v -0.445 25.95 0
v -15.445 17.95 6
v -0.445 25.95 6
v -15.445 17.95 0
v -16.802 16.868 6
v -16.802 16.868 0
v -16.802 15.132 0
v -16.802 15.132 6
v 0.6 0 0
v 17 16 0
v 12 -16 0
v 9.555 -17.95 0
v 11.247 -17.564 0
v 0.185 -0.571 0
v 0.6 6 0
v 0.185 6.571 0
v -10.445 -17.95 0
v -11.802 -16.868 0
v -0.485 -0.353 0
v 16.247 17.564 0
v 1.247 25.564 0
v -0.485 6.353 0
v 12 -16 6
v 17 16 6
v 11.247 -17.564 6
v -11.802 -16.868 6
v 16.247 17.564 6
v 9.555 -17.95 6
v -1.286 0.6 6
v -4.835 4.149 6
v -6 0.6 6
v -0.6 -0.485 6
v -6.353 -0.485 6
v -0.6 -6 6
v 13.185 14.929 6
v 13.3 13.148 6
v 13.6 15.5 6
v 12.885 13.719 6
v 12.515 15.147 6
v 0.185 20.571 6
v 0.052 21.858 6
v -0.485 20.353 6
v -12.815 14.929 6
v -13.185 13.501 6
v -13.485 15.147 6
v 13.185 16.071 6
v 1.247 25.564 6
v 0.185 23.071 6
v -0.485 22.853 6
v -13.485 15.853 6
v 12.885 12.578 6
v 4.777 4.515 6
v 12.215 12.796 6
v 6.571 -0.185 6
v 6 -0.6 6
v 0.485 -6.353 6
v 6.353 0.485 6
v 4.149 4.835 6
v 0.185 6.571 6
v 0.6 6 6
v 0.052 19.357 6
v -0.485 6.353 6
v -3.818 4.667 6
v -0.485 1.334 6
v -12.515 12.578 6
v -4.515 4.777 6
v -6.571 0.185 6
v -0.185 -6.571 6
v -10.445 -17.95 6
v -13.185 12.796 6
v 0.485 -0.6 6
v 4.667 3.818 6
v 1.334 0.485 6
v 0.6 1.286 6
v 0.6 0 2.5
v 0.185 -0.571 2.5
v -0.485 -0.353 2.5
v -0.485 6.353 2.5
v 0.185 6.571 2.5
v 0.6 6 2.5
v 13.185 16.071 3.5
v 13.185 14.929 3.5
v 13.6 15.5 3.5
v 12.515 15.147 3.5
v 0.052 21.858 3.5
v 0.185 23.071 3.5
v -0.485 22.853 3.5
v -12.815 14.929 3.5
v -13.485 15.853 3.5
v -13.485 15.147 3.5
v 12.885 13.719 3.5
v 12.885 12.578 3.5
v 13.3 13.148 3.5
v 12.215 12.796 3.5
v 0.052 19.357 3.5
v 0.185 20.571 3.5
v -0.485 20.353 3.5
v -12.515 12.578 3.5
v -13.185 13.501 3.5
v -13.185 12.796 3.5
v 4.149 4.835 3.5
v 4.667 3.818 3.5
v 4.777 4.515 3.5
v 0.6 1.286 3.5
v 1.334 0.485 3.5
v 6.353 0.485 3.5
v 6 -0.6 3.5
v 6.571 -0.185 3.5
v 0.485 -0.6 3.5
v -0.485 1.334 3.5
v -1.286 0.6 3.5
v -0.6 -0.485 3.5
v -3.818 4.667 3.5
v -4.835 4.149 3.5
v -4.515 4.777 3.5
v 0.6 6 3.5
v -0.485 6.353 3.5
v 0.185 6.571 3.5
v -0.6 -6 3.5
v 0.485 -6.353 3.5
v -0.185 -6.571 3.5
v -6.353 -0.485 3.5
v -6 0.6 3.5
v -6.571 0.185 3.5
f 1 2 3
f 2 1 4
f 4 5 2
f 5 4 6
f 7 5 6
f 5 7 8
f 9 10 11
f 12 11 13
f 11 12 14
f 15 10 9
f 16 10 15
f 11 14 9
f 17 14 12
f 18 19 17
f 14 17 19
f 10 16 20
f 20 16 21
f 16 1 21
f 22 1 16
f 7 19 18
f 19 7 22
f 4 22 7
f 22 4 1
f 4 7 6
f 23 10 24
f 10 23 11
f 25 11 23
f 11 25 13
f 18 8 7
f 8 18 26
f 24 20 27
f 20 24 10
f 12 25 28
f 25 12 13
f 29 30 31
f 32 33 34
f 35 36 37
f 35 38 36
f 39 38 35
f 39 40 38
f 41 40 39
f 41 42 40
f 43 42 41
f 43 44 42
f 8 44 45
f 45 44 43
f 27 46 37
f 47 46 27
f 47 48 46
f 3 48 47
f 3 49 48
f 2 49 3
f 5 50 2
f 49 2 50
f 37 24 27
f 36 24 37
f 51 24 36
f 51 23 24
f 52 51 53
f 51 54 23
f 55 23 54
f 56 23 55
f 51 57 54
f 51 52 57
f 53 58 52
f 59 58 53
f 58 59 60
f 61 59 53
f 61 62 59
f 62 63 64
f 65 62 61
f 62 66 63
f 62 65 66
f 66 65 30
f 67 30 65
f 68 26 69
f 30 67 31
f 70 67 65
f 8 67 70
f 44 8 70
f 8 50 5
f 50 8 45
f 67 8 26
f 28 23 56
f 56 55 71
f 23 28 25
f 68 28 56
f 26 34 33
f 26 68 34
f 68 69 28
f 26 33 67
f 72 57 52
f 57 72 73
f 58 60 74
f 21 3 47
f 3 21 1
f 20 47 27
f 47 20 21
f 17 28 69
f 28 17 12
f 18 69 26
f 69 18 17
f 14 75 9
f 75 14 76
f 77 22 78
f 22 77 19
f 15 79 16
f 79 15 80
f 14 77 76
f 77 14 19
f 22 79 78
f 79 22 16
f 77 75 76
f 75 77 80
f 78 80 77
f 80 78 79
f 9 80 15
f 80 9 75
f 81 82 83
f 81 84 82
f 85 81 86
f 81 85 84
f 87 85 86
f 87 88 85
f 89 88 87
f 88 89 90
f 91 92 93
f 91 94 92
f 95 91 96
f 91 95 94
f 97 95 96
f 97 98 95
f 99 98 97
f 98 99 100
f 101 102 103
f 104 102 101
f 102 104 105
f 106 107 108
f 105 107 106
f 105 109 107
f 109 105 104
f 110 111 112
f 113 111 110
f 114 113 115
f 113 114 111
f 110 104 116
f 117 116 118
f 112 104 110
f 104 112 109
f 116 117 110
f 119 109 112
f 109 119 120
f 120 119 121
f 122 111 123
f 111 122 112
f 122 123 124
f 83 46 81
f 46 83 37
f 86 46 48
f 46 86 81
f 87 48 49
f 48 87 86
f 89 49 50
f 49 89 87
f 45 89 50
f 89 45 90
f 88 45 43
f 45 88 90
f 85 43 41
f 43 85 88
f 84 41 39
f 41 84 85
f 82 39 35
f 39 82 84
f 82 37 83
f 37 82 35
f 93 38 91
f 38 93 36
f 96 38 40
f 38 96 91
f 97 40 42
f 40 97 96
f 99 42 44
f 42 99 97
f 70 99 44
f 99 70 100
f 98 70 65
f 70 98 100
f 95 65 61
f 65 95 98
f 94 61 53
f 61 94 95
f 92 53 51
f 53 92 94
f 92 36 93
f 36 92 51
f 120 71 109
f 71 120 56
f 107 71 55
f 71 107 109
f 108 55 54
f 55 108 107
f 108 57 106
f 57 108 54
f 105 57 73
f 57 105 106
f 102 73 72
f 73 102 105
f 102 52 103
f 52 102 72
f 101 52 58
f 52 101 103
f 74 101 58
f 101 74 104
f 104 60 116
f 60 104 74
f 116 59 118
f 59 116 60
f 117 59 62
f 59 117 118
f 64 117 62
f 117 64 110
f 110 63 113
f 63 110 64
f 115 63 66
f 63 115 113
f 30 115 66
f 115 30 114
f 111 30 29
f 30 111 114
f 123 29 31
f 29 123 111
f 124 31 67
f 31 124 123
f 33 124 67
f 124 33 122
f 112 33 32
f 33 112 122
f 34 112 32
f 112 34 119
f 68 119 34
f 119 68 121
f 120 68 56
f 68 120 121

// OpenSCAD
// file: moves/step.scad
module shogi_move_step(edges=[0], length=6, thick=0.6) {
    for (a=edges) {
        rotate(a=a*45) hull() {
            circle(thick);
            translate([0, length, 0]) circle(thick);
        }
    }
}
// file: ranks/rank2.scad
module shogi_rank_2(thick=0.6) {
    hull() {
        translate([-12.7, 13.148182, 0]) circle(thick);
        translate([0, 20, 0]) circle(thick);
    }

    hull() {
        translate([0, 20, 0]) circle(thick);
        translate([12.7, 13.148182, 0]) circle(thick);
    }
}
// file: ranks/rank1.scad
module shogi_rank_1(thick=0.6) {
    hull() {
        translate([-13, 15.5, 0]) circle(thick);
        translate([0, 22.5, 0]) circle(thick);
    }

    hull() {
        translate([0, 22.5, 0]) circle(thick);
        translate([13, 15.5, 0]) circle(thick);
    }
}
// file: koma/slim.scad
module shogi_koma_slim(width=30, length=40, rounding=2) {
    points=[
        [width/6 , 0],
        [0, length*0.8],
        [width/2, length],
        [width, length*0.8],
        [5*width/6, 0]
    ];

    minkowski() {
        polygon(points);
        circle(rounding);
    }
}
// file: base/piece.scad
module shogi_piece(thick=6) {
    unit=thick/12;

    difference() {
        translate([-15, -16, 0])
        linear_extrude(thick) children(0);
        translate([0, 0, -1*unit]) linear_extrude(6*unit) children(1);
        translate([0, 0, 7*unit]) linear_extrude(6*unit) children(2);
        translate([0, 0, 9*unit]) linear_extrude(6*unit) children(3);
    }
}
// main file
use <base/piece.scad>;
use <koma/slim.scad>;
use <ranks/rank1.scad>;
use <ranks/rank2.scad>;
use <moves/step.scad>;

shogi_piece() {
    shogi_koma_slim();
    shogi_move_step();
    union() {
        shogi_rank_1();
        shogi_rank_2();
        shogi_move_step(edges=[0, 1, 2, 4, 6, 7]);
    }
    union() {}
}
